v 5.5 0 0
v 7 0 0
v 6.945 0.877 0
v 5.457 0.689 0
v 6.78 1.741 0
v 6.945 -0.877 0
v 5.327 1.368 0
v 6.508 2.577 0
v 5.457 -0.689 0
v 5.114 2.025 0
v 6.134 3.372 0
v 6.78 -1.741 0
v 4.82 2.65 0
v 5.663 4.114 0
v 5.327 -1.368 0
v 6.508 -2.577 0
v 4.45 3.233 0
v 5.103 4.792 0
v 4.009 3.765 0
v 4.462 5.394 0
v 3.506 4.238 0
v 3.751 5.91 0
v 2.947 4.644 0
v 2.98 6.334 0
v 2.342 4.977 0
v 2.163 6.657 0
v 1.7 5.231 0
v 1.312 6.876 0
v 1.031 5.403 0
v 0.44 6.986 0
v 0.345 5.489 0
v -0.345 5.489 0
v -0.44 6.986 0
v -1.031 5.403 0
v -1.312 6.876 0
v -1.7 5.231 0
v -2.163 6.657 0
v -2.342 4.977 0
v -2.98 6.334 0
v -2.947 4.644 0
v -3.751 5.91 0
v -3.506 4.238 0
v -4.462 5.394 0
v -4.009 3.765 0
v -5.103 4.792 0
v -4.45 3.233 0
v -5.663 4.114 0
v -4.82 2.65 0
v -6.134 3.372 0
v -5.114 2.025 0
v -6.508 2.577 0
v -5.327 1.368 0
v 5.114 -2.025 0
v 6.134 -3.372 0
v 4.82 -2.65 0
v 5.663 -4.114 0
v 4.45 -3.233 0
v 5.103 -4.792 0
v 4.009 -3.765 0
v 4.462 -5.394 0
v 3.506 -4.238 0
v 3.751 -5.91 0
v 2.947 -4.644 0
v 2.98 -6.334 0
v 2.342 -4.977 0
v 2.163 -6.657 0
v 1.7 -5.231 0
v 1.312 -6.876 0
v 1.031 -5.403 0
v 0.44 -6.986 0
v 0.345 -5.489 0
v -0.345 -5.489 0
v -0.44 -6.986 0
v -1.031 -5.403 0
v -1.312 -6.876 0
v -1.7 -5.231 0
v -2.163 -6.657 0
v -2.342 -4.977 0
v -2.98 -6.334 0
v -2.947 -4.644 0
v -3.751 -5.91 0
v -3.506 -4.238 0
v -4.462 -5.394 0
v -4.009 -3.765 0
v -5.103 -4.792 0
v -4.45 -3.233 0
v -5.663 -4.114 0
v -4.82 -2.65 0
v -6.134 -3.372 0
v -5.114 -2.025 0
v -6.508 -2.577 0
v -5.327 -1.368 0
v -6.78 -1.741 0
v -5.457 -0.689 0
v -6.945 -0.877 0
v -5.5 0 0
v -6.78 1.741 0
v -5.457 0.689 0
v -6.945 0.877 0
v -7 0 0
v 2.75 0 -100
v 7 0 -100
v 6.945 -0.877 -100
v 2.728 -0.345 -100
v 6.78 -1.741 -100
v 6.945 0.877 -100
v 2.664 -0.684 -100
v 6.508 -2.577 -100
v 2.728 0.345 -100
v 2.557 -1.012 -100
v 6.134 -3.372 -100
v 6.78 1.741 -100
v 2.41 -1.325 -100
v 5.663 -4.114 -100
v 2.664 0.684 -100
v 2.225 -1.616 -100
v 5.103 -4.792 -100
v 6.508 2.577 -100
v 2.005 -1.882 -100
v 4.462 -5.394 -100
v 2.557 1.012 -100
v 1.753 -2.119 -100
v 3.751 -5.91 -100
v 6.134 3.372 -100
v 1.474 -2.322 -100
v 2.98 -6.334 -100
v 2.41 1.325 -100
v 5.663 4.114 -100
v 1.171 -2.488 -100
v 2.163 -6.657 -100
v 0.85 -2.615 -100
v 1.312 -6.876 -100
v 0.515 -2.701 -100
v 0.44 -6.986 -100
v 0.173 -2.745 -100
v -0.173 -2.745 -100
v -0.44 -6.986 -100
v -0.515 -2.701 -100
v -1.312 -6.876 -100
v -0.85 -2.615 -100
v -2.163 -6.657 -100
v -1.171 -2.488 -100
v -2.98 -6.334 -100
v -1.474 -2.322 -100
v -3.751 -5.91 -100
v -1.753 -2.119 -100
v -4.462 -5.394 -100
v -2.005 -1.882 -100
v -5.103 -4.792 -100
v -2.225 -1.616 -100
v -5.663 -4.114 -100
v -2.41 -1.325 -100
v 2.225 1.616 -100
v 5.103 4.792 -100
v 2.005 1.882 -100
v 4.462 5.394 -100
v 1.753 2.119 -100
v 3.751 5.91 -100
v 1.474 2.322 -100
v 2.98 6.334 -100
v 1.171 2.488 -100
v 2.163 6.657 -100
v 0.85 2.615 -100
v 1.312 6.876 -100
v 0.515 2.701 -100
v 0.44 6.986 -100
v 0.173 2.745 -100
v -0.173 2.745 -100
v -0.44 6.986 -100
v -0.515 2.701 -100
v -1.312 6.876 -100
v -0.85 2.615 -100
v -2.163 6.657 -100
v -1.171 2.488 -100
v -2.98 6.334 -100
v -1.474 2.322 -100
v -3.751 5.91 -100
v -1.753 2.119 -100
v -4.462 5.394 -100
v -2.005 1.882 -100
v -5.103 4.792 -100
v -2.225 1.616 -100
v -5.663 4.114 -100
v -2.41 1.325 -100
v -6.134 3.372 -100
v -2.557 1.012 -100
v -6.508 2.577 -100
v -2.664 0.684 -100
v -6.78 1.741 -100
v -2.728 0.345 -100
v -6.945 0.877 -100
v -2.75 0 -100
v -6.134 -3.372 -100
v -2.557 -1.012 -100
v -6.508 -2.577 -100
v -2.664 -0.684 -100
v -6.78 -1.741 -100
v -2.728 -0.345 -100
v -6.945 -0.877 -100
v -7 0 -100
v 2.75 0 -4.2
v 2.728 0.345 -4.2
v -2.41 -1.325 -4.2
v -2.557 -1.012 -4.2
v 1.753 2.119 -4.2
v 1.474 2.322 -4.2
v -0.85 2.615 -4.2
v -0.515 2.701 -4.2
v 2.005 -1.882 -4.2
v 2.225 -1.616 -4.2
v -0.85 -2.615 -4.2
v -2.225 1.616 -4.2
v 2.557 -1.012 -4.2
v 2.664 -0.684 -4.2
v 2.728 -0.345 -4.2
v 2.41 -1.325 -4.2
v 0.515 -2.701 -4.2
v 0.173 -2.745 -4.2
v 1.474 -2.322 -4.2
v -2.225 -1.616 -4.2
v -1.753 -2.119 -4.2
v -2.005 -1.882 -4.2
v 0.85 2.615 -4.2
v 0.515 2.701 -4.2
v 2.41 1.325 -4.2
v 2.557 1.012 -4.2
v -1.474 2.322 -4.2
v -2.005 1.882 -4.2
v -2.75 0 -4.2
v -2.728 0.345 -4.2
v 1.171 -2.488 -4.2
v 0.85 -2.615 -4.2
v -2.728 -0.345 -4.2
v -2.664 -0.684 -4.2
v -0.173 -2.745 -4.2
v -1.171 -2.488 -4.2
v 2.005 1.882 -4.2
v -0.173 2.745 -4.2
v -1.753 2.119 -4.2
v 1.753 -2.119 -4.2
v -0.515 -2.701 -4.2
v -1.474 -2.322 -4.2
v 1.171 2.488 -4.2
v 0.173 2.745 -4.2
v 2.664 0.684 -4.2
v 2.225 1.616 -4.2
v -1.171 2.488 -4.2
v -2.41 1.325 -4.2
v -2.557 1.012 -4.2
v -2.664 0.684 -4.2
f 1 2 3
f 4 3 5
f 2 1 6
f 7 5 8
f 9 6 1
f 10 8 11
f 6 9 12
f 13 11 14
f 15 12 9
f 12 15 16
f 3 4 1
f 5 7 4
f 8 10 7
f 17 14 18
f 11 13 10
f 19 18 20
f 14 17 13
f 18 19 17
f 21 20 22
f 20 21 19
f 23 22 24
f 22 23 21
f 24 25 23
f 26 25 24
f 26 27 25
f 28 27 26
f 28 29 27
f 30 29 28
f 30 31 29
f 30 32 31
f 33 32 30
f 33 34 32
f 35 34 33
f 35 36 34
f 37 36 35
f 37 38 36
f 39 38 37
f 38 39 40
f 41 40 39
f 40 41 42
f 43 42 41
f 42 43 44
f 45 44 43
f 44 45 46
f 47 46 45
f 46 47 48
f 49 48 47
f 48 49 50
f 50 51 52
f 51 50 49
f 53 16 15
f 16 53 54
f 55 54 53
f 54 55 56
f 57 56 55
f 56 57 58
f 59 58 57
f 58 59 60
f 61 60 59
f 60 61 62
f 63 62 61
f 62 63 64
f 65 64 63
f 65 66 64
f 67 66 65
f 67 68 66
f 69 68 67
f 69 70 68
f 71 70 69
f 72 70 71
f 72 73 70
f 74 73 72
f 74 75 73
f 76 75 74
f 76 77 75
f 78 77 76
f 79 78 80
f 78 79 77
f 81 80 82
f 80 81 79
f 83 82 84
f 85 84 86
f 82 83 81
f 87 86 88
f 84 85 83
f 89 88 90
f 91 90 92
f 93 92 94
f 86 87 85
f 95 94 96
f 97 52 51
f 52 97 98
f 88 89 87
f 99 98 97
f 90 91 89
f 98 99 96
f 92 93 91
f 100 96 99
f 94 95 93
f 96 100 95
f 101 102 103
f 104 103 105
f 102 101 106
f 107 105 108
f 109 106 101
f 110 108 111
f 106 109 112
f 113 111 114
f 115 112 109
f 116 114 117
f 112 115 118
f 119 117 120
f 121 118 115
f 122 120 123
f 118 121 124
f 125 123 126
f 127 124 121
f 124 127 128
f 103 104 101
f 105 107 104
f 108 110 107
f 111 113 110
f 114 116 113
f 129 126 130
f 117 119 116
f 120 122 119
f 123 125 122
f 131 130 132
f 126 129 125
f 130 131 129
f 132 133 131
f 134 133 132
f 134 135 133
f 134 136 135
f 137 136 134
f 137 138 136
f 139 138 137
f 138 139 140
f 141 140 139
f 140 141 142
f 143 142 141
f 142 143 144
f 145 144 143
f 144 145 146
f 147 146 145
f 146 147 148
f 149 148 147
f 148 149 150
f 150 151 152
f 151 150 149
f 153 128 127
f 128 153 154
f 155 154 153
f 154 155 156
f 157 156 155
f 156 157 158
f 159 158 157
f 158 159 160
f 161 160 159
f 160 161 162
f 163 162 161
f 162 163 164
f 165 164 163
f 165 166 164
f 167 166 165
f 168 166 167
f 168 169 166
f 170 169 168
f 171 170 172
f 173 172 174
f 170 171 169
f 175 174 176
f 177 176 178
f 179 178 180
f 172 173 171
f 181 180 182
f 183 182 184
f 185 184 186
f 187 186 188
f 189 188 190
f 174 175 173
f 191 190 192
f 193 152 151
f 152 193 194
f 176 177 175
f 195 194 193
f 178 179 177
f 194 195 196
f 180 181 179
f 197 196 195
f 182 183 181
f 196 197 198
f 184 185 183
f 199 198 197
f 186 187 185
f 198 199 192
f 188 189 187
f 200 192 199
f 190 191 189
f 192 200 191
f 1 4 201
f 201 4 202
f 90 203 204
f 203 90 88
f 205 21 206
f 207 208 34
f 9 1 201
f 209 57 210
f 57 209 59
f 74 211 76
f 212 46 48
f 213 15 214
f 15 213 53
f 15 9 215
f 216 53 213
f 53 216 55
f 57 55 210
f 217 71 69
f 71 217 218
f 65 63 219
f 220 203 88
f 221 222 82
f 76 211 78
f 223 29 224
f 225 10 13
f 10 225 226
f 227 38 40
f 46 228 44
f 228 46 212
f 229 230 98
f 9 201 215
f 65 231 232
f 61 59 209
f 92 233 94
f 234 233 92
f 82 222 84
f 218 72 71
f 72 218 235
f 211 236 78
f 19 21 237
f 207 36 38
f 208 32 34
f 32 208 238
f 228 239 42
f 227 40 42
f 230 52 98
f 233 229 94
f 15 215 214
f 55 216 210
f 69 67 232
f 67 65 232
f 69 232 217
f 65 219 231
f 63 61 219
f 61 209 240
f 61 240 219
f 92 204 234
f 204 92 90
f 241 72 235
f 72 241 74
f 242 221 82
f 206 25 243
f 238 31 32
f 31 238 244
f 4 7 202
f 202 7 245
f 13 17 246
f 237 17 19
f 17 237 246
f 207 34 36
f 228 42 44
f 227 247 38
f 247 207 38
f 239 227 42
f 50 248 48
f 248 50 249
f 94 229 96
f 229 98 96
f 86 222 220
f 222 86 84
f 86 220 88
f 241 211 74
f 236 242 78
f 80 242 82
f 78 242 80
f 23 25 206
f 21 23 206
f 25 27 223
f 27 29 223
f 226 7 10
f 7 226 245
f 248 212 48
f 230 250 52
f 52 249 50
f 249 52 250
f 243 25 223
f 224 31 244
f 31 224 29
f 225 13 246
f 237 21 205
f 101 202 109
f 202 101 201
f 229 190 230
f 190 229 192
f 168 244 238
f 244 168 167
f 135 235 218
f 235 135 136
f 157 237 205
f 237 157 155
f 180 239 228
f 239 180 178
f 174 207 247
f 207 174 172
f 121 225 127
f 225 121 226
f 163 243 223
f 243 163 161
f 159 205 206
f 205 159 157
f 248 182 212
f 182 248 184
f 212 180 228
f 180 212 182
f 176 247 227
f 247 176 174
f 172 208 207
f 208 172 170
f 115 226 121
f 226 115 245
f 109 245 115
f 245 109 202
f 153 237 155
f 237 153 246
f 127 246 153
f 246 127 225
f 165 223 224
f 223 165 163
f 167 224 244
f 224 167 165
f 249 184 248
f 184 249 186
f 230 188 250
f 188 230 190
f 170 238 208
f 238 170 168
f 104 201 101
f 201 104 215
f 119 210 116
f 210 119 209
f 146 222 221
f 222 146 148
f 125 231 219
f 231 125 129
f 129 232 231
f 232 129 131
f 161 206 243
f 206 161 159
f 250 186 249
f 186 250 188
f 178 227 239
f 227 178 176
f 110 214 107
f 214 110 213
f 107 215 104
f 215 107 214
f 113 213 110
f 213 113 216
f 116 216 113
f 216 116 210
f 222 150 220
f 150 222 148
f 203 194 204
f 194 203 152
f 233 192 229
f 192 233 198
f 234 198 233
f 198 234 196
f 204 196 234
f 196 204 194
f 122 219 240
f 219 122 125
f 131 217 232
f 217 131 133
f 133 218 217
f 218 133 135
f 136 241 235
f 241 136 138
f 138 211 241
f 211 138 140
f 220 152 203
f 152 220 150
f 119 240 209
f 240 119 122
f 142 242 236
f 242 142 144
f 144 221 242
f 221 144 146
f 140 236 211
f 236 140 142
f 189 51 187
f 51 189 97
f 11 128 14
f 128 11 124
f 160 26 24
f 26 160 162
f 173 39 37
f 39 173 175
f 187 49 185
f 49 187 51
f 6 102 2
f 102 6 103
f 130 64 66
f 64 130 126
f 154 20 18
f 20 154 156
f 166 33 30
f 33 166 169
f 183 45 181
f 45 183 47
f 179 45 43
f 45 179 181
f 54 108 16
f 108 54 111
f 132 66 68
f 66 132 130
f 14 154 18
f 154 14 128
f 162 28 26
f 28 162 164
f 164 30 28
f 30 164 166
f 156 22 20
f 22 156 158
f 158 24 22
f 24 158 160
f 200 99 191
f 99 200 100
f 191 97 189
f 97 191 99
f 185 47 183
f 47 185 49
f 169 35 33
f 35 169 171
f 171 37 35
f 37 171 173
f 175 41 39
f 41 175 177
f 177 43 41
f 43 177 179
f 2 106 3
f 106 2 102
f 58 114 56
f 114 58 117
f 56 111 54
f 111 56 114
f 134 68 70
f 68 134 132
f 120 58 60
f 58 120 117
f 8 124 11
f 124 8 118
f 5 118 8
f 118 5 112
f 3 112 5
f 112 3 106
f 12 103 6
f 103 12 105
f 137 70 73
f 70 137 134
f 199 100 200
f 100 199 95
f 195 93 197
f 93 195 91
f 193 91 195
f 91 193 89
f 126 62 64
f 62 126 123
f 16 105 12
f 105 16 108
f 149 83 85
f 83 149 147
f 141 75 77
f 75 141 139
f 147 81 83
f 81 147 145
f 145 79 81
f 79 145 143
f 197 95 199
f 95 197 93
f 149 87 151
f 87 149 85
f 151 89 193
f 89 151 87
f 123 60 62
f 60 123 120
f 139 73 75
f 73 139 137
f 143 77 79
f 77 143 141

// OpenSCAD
$fn = 50;


difference() {
	union() {
		translate(v = [0, 0, -100.0000000000]) {
			cylinder(h = 100, r = 7.0000000000);
		}
	}
	union() {
		translate(v = [0, 0, 0]) {
			rotate(a = [0, 0, 0]) {
				difference() {
					union() {
						#translate(v = [0, 0, -100.0000000000]) {
							cylinder(h = 100, r = 2.2500000000);
						}
						#translate(v = [0, 0, -4.2000000000]) {
							cylinder(h = 4.2000000000, r1 = 2.7500000000, r2 = 5.5000000000);
						}
						#translate(v = [0, 0, -100.0000000000]) {
							cylinder(h = 100, r = 2.7500000000);
						}
						#translate(v = [0, 0, -100.0000000000]) {
							cylinder(h = 100, r = 2.2500000000);
						}
					}
					union();
				}
			}
		}
	}
}
